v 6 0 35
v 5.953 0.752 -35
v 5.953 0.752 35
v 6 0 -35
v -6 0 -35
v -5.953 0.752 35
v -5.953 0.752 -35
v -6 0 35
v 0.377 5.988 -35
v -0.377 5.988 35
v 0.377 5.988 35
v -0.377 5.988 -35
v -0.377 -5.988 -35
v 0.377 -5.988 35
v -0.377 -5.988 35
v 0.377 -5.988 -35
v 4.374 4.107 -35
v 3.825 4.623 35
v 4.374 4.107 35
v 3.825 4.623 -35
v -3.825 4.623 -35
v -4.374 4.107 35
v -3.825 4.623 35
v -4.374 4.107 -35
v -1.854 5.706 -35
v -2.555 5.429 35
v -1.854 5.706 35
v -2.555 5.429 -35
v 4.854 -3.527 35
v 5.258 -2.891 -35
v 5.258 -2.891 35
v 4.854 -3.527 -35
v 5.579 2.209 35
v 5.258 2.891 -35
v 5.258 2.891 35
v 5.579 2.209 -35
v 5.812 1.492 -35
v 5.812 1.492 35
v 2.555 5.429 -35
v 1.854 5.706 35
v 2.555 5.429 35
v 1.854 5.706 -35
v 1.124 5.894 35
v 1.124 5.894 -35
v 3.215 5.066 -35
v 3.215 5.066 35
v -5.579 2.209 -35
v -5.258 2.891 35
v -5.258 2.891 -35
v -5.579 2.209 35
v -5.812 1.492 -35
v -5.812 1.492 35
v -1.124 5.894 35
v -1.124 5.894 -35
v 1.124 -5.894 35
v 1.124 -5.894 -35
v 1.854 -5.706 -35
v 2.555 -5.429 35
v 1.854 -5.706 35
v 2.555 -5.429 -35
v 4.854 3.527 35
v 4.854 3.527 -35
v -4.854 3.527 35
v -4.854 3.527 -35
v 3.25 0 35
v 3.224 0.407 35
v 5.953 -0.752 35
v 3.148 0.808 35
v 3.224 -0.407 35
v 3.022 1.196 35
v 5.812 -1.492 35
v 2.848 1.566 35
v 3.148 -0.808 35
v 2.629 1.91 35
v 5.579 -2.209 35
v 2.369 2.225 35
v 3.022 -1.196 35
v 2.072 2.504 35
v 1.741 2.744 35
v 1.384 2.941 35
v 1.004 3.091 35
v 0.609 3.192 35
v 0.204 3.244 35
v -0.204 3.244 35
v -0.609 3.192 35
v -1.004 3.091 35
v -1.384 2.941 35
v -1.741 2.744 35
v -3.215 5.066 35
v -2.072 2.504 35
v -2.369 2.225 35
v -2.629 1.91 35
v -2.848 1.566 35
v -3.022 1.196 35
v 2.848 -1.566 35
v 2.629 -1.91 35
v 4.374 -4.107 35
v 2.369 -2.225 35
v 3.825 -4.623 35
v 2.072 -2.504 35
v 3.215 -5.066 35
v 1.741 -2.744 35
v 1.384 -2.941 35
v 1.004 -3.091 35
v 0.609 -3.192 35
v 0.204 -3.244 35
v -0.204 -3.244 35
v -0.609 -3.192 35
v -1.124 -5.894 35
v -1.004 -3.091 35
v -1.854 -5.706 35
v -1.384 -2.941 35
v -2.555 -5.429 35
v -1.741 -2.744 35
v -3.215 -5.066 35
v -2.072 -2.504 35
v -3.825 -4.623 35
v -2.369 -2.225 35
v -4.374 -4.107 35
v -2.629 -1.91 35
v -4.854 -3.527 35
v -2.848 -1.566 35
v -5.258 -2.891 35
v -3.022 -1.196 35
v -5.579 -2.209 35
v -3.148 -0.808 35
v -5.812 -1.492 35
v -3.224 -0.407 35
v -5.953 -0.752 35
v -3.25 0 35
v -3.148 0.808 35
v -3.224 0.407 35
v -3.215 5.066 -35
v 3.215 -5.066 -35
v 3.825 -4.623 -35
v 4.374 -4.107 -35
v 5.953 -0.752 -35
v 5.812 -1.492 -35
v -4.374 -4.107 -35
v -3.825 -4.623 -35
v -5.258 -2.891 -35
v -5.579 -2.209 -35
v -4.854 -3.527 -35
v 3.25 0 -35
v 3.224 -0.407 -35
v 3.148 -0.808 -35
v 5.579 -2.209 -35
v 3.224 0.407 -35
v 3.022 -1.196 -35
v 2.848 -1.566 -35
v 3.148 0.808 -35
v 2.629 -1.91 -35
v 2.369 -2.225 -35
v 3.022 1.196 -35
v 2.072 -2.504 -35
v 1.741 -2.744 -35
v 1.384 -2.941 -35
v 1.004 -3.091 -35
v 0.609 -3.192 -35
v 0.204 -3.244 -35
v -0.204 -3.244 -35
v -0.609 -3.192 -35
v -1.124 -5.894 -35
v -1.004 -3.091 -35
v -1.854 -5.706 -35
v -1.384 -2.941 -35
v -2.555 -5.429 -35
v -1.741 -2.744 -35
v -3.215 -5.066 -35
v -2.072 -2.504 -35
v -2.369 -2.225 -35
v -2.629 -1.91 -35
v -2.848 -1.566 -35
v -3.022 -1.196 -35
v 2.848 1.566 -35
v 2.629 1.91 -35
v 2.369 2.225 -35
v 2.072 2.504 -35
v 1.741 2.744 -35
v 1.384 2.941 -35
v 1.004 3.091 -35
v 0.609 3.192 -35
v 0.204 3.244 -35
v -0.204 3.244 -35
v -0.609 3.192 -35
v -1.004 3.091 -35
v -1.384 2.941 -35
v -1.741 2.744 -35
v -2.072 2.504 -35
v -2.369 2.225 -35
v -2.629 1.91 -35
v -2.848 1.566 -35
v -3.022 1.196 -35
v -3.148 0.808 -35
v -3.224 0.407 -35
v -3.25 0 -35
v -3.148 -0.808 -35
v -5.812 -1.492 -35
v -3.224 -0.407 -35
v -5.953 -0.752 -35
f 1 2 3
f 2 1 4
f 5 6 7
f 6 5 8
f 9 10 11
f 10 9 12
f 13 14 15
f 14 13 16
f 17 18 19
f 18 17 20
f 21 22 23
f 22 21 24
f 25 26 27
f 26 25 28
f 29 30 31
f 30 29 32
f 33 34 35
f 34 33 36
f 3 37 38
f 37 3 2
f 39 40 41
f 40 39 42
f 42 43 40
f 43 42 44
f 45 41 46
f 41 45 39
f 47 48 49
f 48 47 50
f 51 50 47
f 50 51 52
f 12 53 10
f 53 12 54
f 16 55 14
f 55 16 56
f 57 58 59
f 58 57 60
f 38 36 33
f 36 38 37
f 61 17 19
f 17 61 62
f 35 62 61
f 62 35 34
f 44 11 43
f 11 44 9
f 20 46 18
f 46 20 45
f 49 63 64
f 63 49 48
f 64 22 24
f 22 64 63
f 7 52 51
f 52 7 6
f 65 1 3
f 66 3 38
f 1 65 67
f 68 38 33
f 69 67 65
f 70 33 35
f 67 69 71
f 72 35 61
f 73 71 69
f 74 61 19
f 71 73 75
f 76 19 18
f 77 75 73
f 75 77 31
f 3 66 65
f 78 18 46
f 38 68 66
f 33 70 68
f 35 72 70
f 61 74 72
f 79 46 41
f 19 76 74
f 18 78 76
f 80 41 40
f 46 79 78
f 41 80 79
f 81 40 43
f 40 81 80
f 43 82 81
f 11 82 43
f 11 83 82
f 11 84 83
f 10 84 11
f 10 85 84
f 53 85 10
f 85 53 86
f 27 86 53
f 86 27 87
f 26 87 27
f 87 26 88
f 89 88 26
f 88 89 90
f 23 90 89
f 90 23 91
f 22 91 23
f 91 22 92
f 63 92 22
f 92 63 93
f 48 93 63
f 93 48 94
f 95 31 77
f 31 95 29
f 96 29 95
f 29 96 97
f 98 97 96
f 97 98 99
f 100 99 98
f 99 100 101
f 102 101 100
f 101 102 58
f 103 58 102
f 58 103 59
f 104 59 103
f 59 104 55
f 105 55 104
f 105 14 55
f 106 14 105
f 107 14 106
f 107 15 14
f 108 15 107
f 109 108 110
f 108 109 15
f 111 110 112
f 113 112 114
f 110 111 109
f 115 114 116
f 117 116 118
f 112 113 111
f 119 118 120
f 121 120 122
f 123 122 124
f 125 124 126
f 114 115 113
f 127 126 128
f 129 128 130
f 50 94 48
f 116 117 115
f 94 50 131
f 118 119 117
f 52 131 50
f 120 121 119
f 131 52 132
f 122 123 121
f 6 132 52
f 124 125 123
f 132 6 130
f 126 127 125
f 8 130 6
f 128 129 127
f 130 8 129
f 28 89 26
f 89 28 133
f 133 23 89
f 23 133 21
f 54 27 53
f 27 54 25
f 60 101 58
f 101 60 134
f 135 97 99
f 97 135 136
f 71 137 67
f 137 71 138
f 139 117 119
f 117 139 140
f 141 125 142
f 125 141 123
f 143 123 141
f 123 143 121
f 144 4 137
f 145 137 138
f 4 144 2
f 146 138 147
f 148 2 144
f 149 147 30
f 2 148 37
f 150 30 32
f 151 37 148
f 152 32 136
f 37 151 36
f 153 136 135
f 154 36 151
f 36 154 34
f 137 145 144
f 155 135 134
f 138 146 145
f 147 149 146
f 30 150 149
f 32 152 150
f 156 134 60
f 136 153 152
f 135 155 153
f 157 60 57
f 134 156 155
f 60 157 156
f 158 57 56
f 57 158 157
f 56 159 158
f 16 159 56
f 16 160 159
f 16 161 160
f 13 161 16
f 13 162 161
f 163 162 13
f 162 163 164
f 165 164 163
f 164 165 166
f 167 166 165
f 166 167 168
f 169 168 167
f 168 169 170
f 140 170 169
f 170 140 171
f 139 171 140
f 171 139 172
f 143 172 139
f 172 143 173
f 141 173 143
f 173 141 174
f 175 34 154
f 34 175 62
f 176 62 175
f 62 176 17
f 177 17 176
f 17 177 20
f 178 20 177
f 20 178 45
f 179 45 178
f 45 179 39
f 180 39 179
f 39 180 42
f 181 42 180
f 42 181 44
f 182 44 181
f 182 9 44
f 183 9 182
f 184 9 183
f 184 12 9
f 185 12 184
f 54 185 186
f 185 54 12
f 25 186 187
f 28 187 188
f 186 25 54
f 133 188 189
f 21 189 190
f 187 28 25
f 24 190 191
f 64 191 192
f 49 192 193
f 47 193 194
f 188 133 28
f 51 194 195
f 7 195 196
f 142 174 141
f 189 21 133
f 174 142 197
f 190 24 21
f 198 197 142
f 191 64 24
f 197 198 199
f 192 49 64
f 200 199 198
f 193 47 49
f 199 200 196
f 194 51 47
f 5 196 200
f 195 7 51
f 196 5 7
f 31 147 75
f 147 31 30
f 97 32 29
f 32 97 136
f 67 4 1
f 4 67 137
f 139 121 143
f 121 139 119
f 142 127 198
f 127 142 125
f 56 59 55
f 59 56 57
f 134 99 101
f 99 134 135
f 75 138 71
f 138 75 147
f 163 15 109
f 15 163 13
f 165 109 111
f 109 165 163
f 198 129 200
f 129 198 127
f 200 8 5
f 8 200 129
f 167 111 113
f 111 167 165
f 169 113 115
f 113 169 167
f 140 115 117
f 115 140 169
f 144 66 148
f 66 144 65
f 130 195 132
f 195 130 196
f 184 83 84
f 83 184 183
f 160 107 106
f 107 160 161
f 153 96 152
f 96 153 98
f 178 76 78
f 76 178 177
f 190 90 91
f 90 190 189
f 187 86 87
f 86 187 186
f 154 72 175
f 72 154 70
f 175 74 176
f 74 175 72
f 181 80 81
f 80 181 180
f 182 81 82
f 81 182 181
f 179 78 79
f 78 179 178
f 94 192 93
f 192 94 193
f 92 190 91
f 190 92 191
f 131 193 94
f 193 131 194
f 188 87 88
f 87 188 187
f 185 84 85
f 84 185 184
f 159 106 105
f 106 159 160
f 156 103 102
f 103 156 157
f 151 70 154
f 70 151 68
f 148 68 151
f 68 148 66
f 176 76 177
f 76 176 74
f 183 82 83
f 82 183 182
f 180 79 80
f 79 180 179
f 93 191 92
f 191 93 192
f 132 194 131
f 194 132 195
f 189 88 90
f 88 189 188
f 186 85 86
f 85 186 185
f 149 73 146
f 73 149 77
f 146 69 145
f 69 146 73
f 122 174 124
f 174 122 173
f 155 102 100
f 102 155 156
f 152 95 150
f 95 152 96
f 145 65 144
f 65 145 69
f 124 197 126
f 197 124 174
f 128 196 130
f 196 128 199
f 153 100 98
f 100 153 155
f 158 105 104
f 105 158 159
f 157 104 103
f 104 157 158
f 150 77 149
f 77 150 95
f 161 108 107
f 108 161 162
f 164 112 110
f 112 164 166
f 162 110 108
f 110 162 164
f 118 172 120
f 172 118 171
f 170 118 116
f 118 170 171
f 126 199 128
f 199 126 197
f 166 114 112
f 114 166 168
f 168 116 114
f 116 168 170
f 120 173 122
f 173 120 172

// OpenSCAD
$fn = 50;


difference() {
	union() {
		translate(v = [0, 0, -35.0000000000]) {
			cylinder(h = 70, r = 6.0000000000);
		}
	}
	union() {
		translate(v = [0, 0, -100.0000000000]) {
			cylinder(h = 200, r = 3.2500000000);
		}
	}
}
